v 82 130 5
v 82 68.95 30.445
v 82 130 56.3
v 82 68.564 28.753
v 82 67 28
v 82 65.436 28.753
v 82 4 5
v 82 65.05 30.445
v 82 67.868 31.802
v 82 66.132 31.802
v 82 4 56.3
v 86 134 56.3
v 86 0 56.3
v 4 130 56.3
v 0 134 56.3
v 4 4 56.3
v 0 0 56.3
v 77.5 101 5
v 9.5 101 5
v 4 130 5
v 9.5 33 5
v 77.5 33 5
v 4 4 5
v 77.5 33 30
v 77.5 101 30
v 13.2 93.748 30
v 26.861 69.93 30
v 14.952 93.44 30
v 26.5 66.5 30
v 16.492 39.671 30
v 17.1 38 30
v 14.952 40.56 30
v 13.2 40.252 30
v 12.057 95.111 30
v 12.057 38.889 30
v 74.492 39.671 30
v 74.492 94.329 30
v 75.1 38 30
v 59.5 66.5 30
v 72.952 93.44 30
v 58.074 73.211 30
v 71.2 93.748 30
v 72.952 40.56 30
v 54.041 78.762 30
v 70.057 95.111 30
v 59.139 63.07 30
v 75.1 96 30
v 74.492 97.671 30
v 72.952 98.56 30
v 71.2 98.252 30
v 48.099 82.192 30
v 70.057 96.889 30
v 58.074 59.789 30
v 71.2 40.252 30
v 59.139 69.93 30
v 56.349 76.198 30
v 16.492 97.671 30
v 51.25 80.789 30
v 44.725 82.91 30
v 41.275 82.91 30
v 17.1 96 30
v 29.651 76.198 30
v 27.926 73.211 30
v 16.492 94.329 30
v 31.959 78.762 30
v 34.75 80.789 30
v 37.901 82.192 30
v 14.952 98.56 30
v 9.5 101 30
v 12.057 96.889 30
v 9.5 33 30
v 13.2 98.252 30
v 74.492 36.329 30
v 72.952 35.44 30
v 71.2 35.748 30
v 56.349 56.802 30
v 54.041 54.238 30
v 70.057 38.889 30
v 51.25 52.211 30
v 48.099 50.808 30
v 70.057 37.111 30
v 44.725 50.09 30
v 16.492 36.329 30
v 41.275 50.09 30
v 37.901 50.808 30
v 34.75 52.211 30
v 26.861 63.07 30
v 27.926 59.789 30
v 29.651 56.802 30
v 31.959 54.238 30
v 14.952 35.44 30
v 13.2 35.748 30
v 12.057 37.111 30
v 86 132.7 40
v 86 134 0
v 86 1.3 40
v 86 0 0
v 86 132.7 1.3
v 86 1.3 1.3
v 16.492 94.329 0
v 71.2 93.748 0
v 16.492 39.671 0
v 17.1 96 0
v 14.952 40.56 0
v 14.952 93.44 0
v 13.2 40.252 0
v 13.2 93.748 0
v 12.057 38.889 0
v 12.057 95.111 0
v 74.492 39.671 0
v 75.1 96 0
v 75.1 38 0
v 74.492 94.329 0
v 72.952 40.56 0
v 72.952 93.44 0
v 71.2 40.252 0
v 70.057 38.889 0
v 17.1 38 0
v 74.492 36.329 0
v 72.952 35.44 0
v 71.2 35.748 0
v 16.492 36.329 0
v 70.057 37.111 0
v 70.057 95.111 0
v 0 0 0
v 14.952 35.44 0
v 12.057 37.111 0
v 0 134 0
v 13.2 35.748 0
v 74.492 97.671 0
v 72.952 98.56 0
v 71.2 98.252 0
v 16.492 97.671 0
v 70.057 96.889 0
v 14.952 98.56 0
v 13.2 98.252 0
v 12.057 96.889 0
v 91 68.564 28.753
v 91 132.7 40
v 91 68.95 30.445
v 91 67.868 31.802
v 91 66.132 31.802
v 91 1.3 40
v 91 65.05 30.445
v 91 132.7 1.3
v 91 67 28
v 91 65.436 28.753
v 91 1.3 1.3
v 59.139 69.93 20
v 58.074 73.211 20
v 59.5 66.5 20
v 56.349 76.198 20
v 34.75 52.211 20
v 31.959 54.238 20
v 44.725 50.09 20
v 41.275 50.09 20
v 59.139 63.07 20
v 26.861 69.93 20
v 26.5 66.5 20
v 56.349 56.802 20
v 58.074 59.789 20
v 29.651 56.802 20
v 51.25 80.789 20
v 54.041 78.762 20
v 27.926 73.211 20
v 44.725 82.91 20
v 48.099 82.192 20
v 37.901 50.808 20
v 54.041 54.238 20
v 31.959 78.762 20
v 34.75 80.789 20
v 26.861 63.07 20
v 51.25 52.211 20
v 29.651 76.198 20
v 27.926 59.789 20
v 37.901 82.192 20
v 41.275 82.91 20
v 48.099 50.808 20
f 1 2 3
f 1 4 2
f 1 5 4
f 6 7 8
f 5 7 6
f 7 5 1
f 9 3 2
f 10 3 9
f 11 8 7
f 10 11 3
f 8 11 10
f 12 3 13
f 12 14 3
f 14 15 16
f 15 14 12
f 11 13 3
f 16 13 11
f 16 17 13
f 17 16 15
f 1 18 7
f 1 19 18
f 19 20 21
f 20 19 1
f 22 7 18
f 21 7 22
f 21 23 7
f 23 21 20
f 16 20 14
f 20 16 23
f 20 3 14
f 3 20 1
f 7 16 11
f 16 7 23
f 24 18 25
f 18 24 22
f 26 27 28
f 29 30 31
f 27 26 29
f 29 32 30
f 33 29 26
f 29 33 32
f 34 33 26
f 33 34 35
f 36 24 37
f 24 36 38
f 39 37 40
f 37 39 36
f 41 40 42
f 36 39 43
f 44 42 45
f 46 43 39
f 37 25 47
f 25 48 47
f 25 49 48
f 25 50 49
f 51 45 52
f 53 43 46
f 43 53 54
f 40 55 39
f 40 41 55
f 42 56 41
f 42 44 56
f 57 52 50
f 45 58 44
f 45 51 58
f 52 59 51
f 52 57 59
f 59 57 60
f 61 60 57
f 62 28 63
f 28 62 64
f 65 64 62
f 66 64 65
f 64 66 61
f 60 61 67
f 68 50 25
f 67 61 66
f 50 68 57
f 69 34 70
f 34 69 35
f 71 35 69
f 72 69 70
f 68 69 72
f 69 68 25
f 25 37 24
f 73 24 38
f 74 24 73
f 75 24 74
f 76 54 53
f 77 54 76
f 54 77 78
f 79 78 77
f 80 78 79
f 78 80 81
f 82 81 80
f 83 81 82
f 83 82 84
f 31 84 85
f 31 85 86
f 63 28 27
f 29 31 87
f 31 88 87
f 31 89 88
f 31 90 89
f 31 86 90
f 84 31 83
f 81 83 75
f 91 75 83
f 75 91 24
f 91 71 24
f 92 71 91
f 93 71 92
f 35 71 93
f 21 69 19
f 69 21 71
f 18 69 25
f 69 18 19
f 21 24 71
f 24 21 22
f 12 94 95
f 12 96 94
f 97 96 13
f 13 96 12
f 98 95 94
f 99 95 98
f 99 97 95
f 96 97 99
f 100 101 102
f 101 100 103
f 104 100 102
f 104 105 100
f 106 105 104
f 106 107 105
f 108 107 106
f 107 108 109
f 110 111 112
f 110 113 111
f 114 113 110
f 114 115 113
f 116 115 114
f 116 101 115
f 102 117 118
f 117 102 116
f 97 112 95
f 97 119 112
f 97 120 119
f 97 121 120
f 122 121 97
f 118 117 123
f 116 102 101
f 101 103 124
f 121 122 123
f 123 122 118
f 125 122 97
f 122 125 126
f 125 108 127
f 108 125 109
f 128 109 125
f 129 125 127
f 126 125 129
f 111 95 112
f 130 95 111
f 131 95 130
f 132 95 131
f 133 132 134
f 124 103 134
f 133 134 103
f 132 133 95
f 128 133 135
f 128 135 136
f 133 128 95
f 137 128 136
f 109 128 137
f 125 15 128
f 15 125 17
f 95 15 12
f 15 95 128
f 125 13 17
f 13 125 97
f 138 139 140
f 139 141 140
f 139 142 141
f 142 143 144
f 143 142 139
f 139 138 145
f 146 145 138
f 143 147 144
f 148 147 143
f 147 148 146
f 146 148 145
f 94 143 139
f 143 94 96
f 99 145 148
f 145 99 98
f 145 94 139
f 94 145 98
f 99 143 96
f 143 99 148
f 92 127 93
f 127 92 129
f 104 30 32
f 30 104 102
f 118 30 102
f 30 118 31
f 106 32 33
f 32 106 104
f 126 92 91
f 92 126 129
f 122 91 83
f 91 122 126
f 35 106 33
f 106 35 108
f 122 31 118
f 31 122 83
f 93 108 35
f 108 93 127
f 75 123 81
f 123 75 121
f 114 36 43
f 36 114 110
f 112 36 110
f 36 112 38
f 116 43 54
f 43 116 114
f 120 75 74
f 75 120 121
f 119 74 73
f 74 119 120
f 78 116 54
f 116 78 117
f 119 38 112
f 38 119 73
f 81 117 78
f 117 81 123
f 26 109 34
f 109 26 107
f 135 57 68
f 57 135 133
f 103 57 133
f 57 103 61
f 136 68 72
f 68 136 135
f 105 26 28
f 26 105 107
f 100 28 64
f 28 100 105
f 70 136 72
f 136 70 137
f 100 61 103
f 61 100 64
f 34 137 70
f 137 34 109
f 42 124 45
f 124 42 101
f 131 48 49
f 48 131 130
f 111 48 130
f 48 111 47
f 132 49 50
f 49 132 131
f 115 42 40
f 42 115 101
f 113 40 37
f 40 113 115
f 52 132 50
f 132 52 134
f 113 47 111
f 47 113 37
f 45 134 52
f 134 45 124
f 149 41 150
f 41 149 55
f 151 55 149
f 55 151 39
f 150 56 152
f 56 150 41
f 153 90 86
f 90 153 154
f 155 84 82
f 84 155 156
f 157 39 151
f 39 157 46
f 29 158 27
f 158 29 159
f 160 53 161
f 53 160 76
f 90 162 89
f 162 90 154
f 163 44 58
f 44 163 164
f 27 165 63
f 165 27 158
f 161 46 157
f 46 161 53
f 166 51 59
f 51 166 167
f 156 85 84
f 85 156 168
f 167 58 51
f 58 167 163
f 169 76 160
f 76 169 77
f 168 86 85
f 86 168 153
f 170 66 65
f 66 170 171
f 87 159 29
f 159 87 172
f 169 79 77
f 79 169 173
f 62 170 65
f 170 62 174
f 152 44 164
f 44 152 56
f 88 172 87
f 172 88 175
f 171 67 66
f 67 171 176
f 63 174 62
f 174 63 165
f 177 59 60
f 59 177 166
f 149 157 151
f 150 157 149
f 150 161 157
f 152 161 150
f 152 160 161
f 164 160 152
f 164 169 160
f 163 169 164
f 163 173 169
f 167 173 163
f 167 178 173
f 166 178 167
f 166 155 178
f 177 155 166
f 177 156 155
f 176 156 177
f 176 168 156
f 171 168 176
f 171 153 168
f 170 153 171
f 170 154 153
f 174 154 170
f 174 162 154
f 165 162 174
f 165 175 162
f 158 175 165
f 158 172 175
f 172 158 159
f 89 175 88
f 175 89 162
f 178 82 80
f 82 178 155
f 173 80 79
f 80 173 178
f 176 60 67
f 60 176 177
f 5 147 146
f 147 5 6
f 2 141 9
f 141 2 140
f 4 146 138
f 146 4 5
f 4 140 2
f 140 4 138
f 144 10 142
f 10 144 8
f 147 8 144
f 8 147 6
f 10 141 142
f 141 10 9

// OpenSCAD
u=12;
margin=5;
border=2;

difference() {
    union() {
        cube([u*6+margin*2+border*2,u*10+margin*2+border*2,56.3]);
        translate([u*6+margin*2+border*2,1.3,1.3]) {
          cube([5,u*10+margin*2+border*2-2.6,40-1.3]);
        };
    };
    
    //main cutout
    difference() {
        translate([4,4,5]) {
            cube([u*6+margin*2+border*2-8,u*10+margin*2+border*2-8,51.3]);
        };
        translate([((87-58)/2)-5,((134-58)/2)-5,0]) {
          cube([68,68,30]);
        };
    }
    
    //speaker stands
    translate([(87-58)/2,(134-58)/2,0]) {
        cylinder(h=30,d=5.2);
    }
    translate([(87-58)/2+58,(134-58)/2,0]) {
        cylinder(h=30,d=5.2);
    }
    translate([(87-58)/2,(134-58)/2+58,0]) {
        cylinder(h=30,d=5.2);
    }
    translate([(87-58)/2+58,(134-58)/2+58,0]) {
        cylinder(h=30,d=5.2);
    }    
    
    //speaker magnet
    translate([(87-58)/2+(58-33)/2+16,(134-58)/2+(58-33)/2+16,20]) {
        cylinder(h=10,d=33);
    }
    
    //speaker wire conduit
    translate([u*6+margin*2+border*2-5,134/2,30]) {
        rotate(90,[0,1,0]) {
            cylinder(h=15,d=4);
        }
    }
};

// speaker stand 4mm diameter, 58mm apart
//87x134mm
